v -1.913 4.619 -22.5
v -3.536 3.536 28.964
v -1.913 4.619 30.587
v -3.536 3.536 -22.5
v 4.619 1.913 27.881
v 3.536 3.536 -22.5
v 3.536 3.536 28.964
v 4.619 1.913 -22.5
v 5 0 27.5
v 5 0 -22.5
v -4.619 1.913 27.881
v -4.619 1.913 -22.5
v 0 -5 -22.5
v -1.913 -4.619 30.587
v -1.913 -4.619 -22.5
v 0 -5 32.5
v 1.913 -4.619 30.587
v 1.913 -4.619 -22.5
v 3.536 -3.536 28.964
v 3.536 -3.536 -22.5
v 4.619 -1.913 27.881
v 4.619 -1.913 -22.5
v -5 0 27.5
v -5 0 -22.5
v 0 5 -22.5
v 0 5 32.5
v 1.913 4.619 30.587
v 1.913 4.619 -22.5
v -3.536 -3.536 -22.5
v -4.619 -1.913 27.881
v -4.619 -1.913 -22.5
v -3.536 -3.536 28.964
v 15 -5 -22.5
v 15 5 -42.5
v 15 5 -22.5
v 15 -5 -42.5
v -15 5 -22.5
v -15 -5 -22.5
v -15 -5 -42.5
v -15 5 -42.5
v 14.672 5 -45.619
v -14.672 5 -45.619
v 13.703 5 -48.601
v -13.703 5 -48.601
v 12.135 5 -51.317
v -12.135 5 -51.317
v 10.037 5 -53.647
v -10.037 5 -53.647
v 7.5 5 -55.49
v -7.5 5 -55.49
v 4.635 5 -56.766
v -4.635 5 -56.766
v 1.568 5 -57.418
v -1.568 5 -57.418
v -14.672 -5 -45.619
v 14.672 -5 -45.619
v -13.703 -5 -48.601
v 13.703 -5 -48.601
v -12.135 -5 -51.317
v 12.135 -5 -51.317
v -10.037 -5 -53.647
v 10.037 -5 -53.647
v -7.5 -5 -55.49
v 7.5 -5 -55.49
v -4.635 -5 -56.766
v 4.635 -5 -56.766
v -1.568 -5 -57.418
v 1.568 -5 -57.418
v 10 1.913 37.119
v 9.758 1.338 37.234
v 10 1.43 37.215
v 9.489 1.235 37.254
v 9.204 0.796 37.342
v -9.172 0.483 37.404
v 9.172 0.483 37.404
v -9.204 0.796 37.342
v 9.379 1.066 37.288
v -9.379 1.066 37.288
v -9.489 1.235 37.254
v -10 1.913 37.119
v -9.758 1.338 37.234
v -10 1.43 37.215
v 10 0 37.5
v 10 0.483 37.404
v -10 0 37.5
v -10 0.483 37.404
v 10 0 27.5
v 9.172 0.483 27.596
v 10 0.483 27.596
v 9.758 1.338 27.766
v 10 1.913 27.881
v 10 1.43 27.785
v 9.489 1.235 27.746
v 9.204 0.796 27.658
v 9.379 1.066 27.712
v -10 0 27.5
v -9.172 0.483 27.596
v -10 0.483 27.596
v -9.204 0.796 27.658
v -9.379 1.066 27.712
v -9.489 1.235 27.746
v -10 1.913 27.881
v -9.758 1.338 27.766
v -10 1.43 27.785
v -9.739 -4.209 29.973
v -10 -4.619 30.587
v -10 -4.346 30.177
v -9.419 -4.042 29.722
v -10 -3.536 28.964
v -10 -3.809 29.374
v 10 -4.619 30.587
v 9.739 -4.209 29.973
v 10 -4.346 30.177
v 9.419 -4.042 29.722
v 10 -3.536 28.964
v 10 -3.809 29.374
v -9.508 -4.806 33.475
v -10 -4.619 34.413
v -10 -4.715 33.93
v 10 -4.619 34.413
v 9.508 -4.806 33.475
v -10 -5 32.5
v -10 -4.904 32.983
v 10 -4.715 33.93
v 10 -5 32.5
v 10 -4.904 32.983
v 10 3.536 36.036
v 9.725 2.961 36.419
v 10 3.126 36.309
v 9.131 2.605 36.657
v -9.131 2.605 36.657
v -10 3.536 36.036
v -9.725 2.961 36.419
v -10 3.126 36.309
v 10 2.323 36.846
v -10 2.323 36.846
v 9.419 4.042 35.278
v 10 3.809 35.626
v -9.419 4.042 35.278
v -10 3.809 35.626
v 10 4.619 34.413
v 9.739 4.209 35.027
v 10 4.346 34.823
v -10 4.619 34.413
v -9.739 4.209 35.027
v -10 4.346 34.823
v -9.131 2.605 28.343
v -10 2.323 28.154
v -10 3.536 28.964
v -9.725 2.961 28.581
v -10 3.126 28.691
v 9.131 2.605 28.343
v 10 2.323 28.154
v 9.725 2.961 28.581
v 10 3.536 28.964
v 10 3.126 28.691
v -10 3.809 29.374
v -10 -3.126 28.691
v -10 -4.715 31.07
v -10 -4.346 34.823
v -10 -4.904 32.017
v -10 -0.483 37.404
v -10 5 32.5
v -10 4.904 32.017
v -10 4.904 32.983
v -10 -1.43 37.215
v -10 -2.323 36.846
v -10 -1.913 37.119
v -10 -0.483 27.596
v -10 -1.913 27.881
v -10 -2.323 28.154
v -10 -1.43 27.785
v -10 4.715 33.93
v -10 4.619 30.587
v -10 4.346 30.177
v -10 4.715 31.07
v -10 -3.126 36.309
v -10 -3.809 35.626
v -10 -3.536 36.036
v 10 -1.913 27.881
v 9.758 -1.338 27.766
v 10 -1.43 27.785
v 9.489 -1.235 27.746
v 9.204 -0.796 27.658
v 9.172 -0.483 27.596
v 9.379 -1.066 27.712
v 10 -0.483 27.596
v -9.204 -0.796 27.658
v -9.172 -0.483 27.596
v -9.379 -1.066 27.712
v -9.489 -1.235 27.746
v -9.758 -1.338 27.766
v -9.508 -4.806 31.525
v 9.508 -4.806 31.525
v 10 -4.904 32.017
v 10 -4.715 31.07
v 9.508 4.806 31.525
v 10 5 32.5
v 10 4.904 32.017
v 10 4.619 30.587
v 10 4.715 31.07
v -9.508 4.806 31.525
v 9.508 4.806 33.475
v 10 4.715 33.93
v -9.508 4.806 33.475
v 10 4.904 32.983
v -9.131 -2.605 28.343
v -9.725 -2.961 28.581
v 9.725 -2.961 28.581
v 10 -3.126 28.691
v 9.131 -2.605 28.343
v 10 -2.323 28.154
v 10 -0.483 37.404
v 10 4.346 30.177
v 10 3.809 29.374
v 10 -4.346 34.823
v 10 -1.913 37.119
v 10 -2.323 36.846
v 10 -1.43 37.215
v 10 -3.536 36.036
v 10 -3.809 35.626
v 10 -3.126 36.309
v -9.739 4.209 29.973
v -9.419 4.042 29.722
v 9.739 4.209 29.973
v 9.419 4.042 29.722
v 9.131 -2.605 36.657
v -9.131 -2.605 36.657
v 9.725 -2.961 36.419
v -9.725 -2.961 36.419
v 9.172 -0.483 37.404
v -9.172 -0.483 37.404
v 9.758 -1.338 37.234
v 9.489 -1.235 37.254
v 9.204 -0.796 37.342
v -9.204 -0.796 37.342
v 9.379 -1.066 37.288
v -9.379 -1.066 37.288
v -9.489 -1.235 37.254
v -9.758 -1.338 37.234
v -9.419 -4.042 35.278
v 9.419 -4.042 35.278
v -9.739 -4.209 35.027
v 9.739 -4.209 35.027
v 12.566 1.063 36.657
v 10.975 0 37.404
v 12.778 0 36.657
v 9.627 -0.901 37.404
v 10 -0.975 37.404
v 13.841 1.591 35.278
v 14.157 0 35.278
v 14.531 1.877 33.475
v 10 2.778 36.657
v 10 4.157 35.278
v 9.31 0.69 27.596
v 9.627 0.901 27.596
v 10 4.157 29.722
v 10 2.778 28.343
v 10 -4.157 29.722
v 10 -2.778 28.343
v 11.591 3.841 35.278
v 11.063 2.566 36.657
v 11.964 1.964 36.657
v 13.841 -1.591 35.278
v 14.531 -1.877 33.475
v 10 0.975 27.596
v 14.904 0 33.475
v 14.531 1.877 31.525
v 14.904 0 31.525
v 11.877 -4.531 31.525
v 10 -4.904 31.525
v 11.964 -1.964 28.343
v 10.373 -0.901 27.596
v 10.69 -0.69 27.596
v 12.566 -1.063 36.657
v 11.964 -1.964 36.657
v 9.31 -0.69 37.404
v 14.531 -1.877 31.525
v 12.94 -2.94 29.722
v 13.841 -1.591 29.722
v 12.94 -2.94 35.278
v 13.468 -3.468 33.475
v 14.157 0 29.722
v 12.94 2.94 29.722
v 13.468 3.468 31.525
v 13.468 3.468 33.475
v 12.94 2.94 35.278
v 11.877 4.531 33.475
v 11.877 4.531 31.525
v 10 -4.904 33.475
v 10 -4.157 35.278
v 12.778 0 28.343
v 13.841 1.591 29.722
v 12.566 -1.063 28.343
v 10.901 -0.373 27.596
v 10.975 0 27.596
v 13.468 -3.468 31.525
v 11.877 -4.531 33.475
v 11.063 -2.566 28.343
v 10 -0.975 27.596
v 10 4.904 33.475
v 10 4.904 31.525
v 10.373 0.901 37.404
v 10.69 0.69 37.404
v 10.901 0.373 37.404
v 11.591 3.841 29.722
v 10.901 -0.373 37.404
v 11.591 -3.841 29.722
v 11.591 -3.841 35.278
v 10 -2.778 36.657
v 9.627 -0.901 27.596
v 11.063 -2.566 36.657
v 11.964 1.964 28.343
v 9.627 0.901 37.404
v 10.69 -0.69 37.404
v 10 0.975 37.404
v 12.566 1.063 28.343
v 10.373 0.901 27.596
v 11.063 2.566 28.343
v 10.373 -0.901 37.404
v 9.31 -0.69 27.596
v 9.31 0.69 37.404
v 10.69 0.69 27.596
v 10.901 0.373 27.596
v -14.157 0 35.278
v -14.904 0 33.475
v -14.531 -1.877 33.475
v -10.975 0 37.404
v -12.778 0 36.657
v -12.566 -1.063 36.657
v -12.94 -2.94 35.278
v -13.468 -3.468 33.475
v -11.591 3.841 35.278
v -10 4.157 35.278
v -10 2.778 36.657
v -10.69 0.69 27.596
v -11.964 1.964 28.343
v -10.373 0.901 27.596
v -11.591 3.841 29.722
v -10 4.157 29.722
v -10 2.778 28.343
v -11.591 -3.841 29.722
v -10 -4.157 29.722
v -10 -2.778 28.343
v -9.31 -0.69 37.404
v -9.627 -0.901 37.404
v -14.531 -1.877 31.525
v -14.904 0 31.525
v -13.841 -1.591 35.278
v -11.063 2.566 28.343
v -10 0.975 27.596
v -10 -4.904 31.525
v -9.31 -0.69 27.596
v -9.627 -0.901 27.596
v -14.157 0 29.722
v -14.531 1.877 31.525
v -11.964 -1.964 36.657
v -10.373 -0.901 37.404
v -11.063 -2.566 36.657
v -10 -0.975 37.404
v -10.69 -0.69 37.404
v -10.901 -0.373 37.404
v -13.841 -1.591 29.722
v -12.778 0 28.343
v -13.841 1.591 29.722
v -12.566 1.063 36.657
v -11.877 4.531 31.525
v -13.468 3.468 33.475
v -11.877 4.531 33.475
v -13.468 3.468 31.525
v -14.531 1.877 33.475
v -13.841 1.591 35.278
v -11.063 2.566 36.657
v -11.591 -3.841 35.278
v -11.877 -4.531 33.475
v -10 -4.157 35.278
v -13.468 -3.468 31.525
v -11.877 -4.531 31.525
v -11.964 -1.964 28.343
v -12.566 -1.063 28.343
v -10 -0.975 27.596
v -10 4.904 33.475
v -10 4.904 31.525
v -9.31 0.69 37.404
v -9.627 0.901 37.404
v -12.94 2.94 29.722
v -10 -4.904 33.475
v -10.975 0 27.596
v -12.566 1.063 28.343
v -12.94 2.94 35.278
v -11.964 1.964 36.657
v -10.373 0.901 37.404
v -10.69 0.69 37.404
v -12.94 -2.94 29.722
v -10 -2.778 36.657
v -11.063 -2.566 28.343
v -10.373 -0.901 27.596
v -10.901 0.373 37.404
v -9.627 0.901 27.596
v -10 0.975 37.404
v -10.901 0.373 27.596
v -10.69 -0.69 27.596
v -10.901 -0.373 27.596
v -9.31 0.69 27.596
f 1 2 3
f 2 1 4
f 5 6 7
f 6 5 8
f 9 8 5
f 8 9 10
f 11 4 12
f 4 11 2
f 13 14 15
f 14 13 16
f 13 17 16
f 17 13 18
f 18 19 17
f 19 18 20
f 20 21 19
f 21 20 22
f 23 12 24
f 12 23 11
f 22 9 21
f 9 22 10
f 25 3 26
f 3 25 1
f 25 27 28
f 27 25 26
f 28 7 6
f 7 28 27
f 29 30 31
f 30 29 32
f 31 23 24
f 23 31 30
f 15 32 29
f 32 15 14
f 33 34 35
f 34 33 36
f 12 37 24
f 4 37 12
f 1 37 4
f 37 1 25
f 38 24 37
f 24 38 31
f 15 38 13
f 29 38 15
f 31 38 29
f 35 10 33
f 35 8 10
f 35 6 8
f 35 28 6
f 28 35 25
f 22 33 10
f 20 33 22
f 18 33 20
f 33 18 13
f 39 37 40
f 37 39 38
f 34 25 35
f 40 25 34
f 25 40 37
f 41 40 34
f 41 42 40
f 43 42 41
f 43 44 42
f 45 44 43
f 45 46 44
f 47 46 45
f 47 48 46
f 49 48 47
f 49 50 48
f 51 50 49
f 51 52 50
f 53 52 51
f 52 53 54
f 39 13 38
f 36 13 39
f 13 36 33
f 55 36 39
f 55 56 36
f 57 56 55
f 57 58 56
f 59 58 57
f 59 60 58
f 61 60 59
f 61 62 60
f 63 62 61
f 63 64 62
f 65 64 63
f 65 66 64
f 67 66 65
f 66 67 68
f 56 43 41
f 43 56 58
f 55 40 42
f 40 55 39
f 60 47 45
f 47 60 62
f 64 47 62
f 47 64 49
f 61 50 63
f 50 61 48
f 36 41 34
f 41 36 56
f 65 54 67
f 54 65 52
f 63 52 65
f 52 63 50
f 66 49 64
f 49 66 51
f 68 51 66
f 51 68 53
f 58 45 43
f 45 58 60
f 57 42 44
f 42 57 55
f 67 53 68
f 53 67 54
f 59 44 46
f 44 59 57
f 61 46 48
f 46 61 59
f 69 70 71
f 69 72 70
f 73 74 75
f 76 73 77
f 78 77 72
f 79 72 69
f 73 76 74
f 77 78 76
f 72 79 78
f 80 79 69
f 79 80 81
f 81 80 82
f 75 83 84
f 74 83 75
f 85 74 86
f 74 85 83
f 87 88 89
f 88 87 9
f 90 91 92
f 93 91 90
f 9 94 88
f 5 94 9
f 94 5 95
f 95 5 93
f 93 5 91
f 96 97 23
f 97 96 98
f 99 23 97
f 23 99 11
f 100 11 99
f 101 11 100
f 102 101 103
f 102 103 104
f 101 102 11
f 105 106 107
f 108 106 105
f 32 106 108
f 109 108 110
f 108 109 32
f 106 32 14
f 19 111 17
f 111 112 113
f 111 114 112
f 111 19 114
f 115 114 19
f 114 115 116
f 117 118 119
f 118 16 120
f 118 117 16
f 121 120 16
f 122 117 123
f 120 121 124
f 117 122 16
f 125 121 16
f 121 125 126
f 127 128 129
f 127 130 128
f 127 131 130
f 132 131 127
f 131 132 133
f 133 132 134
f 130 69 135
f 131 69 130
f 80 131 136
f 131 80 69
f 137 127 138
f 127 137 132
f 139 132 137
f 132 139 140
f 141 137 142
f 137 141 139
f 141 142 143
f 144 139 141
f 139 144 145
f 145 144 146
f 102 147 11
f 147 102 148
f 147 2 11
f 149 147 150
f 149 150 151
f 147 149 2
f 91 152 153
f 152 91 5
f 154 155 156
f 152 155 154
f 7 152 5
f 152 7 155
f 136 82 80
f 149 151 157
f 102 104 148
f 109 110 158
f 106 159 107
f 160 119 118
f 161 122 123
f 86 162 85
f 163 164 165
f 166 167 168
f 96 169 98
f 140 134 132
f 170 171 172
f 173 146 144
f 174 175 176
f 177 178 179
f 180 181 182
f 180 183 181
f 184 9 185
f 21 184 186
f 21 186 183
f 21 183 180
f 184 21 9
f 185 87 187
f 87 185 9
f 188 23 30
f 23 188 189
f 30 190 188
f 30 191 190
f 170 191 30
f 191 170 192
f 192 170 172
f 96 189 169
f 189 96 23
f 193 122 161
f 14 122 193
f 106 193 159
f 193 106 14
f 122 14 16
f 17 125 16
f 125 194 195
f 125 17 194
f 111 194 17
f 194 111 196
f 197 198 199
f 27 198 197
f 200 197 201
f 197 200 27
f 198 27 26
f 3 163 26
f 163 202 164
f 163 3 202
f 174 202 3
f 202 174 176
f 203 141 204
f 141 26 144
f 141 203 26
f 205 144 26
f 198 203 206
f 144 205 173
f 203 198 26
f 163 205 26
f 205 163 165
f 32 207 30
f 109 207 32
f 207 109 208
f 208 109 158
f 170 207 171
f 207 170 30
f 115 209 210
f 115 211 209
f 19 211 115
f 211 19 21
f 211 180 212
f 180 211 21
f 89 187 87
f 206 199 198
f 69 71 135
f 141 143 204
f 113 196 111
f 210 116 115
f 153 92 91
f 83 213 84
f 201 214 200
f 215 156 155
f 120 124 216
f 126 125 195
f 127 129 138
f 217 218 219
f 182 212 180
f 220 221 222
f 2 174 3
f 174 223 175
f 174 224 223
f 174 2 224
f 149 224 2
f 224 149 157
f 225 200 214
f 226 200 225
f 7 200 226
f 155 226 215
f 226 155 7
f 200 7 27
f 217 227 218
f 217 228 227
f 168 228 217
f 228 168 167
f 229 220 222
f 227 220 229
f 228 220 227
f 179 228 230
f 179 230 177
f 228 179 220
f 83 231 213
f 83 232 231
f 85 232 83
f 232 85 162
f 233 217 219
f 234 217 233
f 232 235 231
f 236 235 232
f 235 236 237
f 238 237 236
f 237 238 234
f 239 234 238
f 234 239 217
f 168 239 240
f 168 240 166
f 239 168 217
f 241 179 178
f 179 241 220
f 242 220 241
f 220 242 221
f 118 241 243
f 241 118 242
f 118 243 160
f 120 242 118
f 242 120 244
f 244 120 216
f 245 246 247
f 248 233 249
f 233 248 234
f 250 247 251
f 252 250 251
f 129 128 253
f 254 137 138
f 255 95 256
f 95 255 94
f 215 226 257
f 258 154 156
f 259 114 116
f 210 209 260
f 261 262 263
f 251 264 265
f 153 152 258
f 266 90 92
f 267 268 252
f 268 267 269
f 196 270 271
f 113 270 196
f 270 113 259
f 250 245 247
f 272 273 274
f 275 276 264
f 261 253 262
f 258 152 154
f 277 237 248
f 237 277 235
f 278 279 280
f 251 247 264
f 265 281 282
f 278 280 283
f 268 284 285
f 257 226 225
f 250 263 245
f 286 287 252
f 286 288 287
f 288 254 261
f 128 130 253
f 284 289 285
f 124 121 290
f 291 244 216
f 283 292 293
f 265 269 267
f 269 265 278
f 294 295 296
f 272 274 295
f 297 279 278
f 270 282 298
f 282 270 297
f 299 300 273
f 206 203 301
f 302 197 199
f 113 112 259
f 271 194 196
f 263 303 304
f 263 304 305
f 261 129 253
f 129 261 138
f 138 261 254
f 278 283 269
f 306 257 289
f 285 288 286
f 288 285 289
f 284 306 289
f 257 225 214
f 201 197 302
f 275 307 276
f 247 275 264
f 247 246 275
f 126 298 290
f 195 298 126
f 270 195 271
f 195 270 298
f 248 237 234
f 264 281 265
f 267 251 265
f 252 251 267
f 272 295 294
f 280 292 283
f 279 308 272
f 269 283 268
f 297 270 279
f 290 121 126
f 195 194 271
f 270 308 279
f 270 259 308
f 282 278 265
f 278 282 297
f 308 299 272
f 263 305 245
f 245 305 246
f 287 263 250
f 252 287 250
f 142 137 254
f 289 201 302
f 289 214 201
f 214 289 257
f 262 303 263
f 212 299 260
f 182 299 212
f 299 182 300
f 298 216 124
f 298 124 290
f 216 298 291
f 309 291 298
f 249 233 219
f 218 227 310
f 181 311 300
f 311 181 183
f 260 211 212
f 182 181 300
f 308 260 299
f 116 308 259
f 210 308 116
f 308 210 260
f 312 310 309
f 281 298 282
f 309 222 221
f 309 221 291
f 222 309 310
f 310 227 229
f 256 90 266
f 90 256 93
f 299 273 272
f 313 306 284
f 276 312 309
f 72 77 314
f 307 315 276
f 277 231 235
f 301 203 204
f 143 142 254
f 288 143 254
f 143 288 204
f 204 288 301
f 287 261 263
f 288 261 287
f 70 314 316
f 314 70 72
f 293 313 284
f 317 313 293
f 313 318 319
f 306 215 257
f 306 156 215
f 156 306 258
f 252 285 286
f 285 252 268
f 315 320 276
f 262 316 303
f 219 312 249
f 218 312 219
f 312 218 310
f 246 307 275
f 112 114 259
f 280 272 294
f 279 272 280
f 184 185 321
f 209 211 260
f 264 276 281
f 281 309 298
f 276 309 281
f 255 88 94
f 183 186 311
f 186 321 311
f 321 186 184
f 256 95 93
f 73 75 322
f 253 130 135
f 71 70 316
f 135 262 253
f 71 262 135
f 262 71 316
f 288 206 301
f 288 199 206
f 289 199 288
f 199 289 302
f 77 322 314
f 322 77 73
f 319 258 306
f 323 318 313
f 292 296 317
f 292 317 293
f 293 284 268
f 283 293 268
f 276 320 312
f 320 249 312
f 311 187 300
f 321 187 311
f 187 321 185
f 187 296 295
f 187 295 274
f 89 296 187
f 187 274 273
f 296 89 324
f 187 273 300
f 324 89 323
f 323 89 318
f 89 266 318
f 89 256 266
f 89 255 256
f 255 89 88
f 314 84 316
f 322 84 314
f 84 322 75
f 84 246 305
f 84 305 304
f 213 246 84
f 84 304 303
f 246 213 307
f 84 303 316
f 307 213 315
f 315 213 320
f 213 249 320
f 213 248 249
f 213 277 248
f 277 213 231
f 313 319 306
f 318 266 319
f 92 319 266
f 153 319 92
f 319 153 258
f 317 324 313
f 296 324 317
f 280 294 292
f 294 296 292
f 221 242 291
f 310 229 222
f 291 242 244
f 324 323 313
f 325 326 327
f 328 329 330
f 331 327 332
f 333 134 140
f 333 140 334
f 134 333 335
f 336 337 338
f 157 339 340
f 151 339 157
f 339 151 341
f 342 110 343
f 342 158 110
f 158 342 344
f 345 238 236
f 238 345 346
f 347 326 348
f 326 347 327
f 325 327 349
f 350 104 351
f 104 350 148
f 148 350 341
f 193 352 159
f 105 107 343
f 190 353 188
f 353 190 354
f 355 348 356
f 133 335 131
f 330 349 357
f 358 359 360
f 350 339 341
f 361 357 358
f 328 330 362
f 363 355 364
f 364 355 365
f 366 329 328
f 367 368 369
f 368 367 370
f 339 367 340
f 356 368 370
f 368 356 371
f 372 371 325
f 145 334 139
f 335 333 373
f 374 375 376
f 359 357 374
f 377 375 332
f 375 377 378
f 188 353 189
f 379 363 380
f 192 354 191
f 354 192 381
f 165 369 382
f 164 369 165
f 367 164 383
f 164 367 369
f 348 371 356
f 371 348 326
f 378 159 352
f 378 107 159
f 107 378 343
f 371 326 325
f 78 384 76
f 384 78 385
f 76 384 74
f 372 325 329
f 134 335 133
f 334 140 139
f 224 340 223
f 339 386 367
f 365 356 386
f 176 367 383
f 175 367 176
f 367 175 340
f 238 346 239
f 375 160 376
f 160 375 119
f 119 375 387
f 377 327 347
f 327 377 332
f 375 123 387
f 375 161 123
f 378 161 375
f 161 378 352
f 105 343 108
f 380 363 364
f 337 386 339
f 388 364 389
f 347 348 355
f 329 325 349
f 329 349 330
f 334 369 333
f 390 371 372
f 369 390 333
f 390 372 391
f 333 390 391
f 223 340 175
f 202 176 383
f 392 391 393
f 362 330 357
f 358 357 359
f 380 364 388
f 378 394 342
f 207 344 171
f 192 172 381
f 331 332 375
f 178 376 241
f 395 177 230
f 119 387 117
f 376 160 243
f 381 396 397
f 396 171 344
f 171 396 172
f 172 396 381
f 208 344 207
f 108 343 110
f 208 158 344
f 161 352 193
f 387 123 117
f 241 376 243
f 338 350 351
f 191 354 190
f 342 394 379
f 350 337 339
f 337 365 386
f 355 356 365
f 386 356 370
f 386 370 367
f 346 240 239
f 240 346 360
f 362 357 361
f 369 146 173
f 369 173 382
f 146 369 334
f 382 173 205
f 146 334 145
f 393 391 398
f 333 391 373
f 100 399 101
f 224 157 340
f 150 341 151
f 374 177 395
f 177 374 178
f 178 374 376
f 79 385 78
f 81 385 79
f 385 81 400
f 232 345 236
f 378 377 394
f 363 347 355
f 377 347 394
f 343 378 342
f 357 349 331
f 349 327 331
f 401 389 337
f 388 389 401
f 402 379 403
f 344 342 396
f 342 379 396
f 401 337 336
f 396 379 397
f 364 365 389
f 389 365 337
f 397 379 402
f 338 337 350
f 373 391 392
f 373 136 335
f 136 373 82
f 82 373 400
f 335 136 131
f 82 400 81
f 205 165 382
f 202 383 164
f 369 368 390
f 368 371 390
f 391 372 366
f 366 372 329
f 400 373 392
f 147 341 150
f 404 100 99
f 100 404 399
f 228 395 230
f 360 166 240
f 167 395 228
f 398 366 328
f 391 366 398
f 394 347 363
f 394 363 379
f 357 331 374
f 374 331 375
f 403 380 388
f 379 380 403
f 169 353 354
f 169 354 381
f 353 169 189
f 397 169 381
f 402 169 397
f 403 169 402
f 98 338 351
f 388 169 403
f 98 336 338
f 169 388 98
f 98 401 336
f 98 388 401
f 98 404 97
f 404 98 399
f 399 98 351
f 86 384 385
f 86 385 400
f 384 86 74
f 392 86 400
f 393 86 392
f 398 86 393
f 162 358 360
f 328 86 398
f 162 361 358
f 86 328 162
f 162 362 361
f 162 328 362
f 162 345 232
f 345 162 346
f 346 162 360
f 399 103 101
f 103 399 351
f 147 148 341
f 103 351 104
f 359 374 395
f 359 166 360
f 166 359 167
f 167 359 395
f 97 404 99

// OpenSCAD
// Paramètres de la tige
$diameter_shaft = 10; // Diamètre de la tige
$length_shaft = 65; // Longueur de la tige

// Paramètres de la tête
$width_head = 30; // Largeur de la tête
$length_head = 10; // Longueur de la tête
$thickness_head = 20; // Épaisseur de la tête


// Paramètres du panneton
$width_ward = 20; // Largeur du panneton
$length_ward = 10; // Longueur du panneton
$thickness_ward = 10; // Épaisseur du panneton


// Création de la tige (cylindre)
cylinder(d=$diameter_shaft, h=$length_shaft, center=true);

    
// Création de la tête (rectangle)
translate([0, 0, -($length_shaft/2)])
    cube([ $width_head, $length_head, $thickness_head], center = true);
    
translate([0, 0, -(10+$length_shaft/2)])
    rotate([90,0,0])
        cylinder(d=$width_head, h=$thickness_ward, center=true);;
    
    

// Création du panneton (rectangle)
translate([0,0,$length_shaft/2])
    rotate([0,90,0])
        cylinder(d=$length_ward, h=$width_ward, center=true);;
    
translate([$length_ward,0,$length_shaft/2])   
    sphere(d = $length_ward);
    
translate([-$length_ward,0,$length_shaft/2])   
    sphere(d = $length_ward);
